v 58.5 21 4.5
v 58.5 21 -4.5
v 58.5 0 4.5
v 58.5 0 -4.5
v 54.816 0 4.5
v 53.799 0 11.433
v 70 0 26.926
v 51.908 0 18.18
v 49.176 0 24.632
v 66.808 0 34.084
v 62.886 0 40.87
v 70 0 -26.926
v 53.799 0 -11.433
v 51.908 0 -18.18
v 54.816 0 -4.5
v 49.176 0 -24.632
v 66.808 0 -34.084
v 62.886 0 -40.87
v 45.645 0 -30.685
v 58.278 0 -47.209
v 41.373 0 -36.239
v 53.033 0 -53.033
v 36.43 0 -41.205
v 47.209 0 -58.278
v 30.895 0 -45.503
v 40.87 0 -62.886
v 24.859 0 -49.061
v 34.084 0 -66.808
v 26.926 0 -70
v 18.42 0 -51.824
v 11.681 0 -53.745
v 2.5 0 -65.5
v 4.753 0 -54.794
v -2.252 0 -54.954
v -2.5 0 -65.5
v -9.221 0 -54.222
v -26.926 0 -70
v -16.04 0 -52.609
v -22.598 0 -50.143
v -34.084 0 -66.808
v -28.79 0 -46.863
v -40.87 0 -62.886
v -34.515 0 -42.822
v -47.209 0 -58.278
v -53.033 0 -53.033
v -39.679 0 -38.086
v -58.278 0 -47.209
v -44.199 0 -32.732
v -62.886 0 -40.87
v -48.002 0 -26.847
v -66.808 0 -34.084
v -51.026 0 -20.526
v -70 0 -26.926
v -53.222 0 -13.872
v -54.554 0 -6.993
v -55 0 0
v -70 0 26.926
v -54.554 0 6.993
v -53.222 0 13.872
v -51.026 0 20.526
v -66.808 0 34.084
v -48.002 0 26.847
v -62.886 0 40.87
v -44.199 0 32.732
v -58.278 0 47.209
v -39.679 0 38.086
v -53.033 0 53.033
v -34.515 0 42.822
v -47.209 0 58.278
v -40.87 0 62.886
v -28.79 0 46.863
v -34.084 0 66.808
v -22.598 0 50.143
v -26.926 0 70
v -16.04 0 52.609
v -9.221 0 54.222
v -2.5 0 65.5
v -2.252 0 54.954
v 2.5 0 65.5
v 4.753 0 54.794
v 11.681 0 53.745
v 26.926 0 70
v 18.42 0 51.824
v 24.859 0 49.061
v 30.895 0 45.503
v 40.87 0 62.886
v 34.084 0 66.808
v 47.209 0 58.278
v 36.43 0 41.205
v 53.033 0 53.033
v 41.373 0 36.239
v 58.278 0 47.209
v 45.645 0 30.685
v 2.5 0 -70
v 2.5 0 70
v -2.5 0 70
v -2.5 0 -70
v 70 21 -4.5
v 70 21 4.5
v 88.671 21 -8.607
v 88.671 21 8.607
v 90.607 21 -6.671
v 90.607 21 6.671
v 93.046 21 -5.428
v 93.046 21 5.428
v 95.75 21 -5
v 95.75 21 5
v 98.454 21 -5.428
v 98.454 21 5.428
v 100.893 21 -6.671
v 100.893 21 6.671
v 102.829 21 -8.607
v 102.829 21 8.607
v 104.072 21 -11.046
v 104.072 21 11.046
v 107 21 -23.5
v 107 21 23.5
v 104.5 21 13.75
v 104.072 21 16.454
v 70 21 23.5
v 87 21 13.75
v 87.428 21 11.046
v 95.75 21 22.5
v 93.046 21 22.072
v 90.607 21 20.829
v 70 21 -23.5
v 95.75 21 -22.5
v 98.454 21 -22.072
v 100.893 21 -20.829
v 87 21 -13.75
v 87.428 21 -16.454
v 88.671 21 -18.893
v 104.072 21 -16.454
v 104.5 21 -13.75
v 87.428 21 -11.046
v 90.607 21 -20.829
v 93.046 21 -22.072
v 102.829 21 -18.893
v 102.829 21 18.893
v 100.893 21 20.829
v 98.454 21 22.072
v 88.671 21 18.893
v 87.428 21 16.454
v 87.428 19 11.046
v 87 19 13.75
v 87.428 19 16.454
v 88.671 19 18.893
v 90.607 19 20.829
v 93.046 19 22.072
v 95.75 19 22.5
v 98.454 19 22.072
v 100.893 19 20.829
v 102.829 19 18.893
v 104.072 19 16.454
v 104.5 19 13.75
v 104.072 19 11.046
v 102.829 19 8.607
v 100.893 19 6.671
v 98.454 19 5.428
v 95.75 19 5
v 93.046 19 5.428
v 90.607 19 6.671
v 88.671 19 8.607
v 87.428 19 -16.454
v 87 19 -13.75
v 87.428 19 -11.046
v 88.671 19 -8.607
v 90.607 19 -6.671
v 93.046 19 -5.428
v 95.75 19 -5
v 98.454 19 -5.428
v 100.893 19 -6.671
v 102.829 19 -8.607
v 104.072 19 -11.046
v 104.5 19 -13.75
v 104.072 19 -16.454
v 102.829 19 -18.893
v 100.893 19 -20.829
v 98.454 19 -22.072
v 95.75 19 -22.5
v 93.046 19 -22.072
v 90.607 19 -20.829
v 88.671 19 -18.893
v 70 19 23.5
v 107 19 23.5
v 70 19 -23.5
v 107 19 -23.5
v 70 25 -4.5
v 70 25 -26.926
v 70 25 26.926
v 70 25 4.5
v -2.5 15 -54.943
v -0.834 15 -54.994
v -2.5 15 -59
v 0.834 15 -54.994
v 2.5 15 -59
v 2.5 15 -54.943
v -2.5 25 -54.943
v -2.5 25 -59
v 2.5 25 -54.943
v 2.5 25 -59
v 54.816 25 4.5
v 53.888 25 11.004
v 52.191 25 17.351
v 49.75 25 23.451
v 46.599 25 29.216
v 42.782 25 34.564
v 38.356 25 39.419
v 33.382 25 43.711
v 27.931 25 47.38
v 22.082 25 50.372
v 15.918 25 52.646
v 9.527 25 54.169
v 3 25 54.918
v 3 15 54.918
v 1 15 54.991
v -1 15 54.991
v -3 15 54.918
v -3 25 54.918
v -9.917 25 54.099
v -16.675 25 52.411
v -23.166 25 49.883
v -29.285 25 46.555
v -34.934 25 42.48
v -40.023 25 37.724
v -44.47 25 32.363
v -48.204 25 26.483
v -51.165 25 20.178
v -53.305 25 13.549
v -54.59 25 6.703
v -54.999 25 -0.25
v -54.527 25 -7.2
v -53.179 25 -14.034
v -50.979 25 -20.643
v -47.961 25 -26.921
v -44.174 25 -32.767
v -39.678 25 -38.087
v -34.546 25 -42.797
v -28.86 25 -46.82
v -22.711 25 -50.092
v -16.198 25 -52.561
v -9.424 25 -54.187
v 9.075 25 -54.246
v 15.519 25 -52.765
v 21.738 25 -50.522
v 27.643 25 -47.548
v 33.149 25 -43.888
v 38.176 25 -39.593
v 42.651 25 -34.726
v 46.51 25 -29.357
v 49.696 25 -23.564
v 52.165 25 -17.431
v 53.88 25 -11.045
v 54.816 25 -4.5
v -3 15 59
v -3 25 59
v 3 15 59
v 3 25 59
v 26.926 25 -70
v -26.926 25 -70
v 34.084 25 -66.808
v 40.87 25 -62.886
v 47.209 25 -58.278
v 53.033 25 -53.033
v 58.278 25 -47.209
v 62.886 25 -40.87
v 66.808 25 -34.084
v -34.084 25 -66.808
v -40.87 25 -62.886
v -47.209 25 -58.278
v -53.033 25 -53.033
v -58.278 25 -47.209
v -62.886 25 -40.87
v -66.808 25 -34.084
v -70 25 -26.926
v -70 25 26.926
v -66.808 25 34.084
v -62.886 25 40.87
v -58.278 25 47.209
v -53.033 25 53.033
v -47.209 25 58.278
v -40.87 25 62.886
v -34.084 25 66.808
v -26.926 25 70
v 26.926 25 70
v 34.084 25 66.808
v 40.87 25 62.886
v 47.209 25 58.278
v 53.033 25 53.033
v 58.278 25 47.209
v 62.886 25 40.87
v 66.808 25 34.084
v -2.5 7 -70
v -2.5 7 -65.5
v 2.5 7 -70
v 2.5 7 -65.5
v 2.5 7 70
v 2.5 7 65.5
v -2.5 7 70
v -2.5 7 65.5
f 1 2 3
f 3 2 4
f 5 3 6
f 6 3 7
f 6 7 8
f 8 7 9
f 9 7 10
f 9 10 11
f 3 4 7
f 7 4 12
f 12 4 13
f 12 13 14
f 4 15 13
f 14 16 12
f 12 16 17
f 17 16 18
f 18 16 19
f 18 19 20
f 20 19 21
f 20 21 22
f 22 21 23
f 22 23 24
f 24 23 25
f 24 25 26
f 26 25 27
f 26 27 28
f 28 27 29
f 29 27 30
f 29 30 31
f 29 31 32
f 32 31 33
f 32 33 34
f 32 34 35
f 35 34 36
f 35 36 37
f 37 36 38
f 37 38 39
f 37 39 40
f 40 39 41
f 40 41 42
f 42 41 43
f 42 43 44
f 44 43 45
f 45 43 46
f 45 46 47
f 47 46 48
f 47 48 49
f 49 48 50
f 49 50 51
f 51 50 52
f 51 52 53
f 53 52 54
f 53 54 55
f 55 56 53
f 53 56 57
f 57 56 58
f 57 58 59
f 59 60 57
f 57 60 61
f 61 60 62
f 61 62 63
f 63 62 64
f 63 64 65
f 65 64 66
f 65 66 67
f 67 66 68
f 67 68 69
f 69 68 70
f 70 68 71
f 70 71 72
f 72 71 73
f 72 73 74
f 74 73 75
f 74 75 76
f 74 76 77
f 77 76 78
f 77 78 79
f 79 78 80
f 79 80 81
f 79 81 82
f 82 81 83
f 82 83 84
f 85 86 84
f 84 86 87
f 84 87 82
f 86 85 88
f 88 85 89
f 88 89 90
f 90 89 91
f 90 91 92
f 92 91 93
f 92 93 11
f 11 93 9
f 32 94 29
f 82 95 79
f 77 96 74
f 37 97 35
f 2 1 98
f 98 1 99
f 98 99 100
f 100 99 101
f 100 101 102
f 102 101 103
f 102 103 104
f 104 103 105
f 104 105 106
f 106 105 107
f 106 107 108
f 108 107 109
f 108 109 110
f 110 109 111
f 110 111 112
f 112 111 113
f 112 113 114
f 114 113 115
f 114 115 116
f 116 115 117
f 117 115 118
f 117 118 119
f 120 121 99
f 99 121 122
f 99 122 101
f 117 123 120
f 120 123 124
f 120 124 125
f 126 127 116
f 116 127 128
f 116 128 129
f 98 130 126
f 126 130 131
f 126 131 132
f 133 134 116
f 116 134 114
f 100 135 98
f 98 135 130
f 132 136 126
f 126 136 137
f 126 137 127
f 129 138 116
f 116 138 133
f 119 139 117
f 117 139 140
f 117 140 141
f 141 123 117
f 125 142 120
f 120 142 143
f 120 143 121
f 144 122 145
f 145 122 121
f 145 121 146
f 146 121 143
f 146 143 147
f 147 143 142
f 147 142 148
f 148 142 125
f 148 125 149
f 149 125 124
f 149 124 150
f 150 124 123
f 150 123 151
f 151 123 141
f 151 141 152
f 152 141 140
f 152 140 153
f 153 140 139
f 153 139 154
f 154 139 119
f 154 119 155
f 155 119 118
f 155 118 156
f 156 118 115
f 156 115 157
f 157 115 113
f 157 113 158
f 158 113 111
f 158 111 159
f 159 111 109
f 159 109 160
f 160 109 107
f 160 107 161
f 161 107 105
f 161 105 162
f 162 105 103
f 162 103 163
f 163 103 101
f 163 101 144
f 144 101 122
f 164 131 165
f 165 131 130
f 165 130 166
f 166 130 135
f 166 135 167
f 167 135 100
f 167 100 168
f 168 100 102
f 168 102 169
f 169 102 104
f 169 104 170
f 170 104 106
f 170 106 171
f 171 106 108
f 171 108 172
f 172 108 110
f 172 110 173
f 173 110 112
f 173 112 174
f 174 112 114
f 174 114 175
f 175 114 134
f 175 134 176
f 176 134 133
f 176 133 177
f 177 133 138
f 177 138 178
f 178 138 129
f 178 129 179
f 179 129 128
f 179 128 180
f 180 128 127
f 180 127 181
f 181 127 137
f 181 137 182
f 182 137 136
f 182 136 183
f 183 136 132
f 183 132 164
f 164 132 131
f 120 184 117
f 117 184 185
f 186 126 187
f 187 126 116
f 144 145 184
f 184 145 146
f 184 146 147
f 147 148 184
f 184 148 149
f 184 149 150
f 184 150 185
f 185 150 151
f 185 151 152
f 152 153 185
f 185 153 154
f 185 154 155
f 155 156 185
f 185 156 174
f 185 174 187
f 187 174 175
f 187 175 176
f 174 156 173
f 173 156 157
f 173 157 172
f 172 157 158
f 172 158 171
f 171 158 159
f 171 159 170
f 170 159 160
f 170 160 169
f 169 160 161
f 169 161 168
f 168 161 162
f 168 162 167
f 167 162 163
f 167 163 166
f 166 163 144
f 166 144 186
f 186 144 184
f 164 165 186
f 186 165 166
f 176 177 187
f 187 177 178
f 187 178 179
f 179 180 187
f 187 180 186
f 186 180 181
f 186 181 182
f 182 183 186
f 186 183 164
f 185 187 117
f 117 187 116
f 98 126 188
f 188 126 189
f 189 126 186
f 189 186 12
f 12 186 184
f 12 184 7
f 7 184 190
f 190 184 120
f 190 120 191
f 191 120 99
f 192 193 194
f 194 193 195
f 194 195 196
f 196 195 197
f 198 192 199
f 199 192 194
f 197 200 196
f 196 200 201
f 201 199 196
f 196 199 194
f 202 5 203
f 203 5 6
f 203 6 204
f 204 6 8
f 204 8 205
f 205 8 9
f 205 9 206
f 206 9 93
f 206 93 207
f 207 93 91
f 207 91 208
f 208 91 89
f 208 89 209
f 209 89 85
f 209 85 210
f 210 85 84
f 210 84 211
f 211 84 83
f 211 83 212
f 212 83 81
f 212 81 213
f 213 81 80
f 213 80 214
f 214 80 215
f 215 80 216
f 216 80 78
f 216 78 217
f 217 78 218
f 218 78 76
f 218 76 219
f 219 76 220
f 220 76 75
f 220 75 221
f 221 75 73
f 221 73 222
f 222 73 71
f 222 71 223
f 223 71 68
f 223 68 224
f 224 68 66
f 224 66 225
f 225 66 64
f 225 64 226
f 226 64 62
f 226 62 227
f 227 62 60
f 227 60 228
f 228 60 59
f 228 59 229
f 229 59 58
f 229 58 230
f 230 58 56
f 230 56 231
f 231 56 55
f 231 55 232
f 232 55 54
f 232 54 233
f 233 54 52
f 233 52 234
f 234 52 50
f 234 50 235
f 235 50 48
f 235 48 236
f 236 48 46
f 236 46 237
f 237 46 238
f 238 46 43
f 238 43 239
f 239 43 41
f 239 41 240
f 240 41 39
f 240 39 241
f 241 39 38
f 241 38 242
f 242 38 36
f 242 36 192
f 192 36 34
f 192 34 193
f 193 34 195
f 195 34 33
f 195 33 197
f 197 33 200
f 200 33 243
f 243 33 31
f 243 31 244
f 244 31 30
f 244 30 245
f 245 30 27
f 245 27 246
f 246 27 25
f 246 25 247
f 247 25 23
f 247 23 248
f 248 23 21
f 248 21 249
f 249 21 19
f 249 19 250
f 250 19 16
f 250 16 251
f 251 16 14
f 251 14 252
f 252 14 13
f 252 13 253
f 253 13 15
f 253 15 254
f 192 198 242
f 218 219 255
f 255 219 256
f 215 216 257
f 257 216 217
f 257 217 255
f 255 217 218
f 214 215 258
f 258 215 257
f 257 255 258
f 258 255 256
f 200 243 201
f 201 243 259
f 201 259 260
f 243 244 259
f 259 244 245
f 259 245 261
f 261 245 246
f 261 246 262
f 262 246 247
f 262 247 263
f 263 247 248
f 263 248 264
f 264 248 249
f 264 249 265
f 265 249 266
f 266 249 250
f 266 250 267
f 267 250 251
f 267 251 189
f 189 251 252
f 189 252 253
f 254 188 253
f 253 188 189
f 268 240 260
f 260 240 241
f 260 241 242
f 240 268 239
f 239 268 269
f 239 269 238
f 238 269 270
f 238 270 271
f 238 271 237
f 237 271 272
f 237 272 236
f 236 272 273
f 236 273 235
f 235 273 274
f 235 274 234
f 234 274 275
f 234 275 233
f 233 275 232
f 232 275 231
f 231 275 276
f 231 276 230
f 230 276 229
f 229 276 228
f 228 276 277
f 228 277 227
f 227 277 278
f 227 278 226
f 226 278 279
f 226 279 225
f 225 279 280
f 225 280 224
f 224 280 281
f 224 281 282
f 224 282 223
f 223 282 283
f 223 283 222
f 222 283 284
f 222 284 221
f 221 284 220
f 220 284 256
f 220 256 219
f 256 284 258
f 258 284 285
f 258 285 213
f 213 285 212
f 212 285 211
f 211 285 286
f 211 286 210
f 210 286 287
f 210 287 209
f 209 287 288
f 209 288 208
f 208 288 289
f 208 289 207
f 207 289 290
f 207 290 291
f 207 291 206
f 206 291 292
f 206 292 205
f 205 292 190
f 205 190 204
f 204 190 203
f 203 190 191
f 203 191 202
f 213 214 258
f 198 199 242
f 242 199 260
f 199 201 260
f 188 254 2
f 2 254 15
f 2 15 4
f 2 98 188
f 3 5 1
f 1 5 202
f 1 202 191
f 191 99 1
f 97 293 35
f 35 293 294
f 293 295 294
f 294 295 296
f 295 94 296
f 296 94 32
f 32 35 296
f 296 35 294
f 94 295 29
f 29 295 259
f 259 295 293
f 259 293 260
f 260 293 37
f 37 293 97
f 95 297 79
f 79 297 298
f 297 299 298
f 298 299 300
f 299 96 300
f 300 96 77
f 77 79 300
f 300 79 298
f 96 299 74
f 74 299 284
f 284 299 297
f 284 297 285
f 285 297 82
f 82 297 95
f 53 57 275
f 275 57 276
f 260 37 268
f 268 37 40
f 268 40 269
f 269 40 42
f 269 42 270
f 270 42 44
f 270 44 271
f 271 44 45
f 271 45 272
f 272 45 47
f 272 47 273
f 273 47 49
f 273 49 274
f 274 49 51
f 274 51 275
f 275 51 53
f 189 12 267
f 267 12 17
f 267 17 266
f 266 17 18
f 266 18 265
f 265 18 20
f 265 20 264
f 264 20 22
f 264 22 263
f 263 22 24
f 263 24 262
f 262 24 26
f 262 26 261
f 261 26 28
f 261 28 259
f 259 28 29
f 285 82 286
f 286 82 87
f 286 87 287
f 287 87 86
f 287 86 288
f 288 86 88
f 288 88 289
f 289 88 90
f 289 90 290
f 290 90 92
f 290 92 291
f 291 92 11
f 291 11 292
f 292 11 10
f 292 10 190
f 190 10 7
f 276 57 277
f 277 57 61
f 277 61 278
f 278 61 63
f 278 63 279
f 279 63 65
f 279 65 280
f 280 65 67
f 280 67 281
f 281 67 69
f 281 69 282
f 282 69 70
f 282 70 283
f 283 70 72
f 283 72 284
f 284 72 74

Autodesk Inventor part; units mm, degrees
sketch "Náčrt1" plane through (0, 0, 0) normal (0, 1, 0) x (-1, 0, 0)
  circle A0 centre (0, 0) radius 55
  line L0 (0, -70) -> (26.9258, -70)
  line L1 (0, -70) -> (-26.9258, -70)
  line L2 (-70, 0) -> (-70, -26.9258)
  line L3 (-70, 0) -> (-70, 26.9258)
  line L4 (70, 0) -> (70, -26.9258)
  line L5 (70, 0) -> (70, 26.9258)
  line L6 (0, 70) -> (26.9258, 70)
  line L7 (0, 70) -> (-26.9258, 70)
  line L8 (-104.3981, 0) -> (104.3981, 0) projected
  line L9 (0, -104.3981) -> (0, 104.3981) projected
  arc A1 (26.9258, -70) -> (70, -26.9258) centre (0, 0) ccw
  arc A2 (-70, -26.9258) -> (-26.9258, -70) centre (0, 0) ccw
  arc A3 (70, 26.9258) -> (26.9258, 70) centre (0, 0) ccw
  arc A4 (-26.9258, 70) -> (-70, 26.9258) centre (0, 0) ccw
  dimension "d1" = 110
extrude "Vysunutí1" add sketch "Náčrt1" along normal blind 25 contours L8 L4 A1 L0 L9 A0 | A0 L9 L6 A3 L5 L8 | A0 L8 L3 A4 L7 L9 | L9 L1 A2 L2 L8 A0
sketch "Náčrt2" plane through (-26.9258, 0, 70) normal (0, 0, 1) x (1, 0, 0)
  line L0 (53.8516, 0) -> (0, 0) projected
  line L1 (24.4258, 0) -> (29.4258, 0)
  line L2 (29.4258, 0) -> (29.4258, 7)
  line L3 (29.4258, 7) -> (24.4258, 7)
  line L4 (24.4258, 7) -> (24.4258, 0)
  line L5 (96.9258, 0) -> (96.9258, 25) projected
  point P0 (26.9258, 0)
  dimension "d5" = 5
  dimension "d6" = 7
  dimension "d7" = 67.5
extrude "Vysunutí2" cut sketch "Náčrt2" against normal blind 4.5
sketch "Náčrt3" plane through (26.9258, 0, -70) normal (0, 0, -1) x (-1, 0, 0)
  line L0 (0, 0) -> (53.8516, 0) projected
  line L1 (53.8516, 0) -> (53.8516, 25) projected
  line L2 (0, 25) -> (53.8516, 25) projected
  line L3 (0, 0) -> (0, 25) projected
  line L4 (53.8516, 0) -> (96.9258, 0) projected
  line L5 (96.9258, 0) -> (96.9258, 25) projected
  line L6 (53.8516, 25) -> (96.9258, 25) projected
  line L7 (53.8516, 0) -> (53.8516, 25) projected
  line L8 (24.4258, 0) -> (0, 0) projected
  line L9 (24.4258, 0) -> (29.4258, 0)
  line L10 (29.4258, 0) -> (29.4258, 7)
  line L11 (29.4258, 7) -> (24.4258, 7)
  line L12 (24.4258, 7) -> (24.4258, 0)
  point P0 (26.9258, 0)
  dimension "d10" = 5
  dimension "d11" = 7
  dimension "d12" = 67.5
extrude "Vysunutí3" cut sketch "Náčrt3" against normal blind 4.5 contours L12 L11 L10 L0
sketch "Náčrt4" plane through (0, 25, 0) normal (0, 1, 0) x (1, 0, 0)
  line L0 (70, -26.9258) -> (70, 26.9258) projected
  line L1 (70, -4.5) -> (52.6737, -4.5)
  line L2 (52.6737, -4.5) -> (52.6737, 4.5)
  line L3 (52.6737, 4.5) -> (70, 4.5)
  line L4 (70, 4.5) -> (70, -4.5)
  line L5 (-98, 0) -> (98, 0) projected
  line L6 (0, 98) -> (0, -98) projected
  point P0 (0, 0)
  point P1 (70, 4.5)
  dimension "d15" = 9
  dimension "d16" = 4.5
extrude "Vysunutí4" cut sketch "Náčrt4" against normal blind 4
ref_plane "Pracovní rovina2" through (0, 0, 54.5) normal (0, 0, 1) x (1, 0, 0)
sketch "Náčrt6" plane through (0, 0, 54.5) normal (0, 0, 1) x (1, 0, 0)
  line L0 (-26.9258, 25) -> (26.9258, 25) projected
  line L1 (3, 25) -> (-3, 25)
  line L2 (-3, 25) -> (-3, 15)
  line L3 (-3, 15) -> (3, 15)
  line L4 (3, 15) -> (3, 25)
  line L5 (0, 30) -> (0, -5) projected
  point P0 (0, 0)
  dimension "d21" = 6
  dimension "d22" = 10
extrude "Vysunutí5" cut sketch "Náčrt6" along normal blind 4.5
ref_plane "Pracovní rovina3" through (0, 0, -54.5) normal (0, 0, 1) x (1, 0, 0)
sketch "Náčrt7" plane through (0, 0, -54.5) normal (0, 0, 1) x (1, 0, 0)
  line L0 (-55, 25) -> (54.8156, 25) projected
  line L1 (2.5, 25) -> (-2.5, 25)
  line L2 (-2.5, 25) -> (-2.5, 15)
  line L3 (-2.5, 15) -> (2.5, 15)
  line L4 (2.5, 15) -> (2.5, 25)
  line L5 (0, 30) -> (0, -5) projected
  point P0 (0, 0)
  point P1 (-3, 25)
  dimension "d26" = 5
  dimension "d27" = 10
extrude "Vysunutí6" cut sketch "Náčrt7" against normal blind 4.5
sketch "Náčrt8" plane through (70, 0, 26.9258) normal (1, 0, 0) x (0, 0, -1)
  line L0 (3.4258, 21) -> (50.4258, 21)
  line L1 (50.4258, 21) -> (50.4258, 19)
  line L2 (50.4258, 19) -> (3.4258, 19)
  line L3 (3.4258, 19) -> (3.4258, 21)
  line L4 (31.4258, 21) -> (22.4258, 21) projected
  line L5 (53.8516, 25) -> (0, 25) projected
  line L6 (26.9258, 25) -> (26.9258, 9.9917)
  point P0 (26.9258, 0)
  dimension "d30" = 47
  dimension "d31" = 2
extrude "Vysunutí7" add sketch "Náčrt8" along normal blind 37
sketch "Náčrt9" plane through (0, 21, 0) normal (0, 1, 0) x (1, 0, 0)
  circle A0 centre (95.75, -13.75) radius 8.75
  circle A1 centre (95.75, 13.75) radius 8.75
  line L0 (-105.4, 0) -> (142.4, 0) projected
  line L1 (107, 23.5) -> (107, -23.5) projected
  point P0 (0, 0)
  dimension "d34" = 17.5
  dimension "d35" = 17.5
  dimension "d37" = 5
  dimension "d38" = 5
  dimension "d41" = 11.25
  dimension "d42" = 11.25
extrude "Vysunutí8" cut sketch "Náčrt9" against normal blind 27
ref_plane "Pracovní rovina4" through (54.5, 0, 0) normal (1, 0, 0) x (0, 1, 0)
sketch "Náčrt10" plane through (54.5, 0, 0) normal (1, 0, 0) x (0, 1, 0)
  line L0 (0, 55) -> (0, -55) projected
  line L1 (21, -4.5) -> (0, -4.5)
  line L2 (0, -4.5) -> (0, 4.5)
  line L3 (0, 4.5) -> (21, 4.5)
  line L4 (21, 4.5) -> (21, -4.5)
  point P0 (0, 0)
  dimension "d44" = 9
extrude "Vysunutí9" cut sketch "Náčrt10" along normal blind 4
properties part number "Kruh"
